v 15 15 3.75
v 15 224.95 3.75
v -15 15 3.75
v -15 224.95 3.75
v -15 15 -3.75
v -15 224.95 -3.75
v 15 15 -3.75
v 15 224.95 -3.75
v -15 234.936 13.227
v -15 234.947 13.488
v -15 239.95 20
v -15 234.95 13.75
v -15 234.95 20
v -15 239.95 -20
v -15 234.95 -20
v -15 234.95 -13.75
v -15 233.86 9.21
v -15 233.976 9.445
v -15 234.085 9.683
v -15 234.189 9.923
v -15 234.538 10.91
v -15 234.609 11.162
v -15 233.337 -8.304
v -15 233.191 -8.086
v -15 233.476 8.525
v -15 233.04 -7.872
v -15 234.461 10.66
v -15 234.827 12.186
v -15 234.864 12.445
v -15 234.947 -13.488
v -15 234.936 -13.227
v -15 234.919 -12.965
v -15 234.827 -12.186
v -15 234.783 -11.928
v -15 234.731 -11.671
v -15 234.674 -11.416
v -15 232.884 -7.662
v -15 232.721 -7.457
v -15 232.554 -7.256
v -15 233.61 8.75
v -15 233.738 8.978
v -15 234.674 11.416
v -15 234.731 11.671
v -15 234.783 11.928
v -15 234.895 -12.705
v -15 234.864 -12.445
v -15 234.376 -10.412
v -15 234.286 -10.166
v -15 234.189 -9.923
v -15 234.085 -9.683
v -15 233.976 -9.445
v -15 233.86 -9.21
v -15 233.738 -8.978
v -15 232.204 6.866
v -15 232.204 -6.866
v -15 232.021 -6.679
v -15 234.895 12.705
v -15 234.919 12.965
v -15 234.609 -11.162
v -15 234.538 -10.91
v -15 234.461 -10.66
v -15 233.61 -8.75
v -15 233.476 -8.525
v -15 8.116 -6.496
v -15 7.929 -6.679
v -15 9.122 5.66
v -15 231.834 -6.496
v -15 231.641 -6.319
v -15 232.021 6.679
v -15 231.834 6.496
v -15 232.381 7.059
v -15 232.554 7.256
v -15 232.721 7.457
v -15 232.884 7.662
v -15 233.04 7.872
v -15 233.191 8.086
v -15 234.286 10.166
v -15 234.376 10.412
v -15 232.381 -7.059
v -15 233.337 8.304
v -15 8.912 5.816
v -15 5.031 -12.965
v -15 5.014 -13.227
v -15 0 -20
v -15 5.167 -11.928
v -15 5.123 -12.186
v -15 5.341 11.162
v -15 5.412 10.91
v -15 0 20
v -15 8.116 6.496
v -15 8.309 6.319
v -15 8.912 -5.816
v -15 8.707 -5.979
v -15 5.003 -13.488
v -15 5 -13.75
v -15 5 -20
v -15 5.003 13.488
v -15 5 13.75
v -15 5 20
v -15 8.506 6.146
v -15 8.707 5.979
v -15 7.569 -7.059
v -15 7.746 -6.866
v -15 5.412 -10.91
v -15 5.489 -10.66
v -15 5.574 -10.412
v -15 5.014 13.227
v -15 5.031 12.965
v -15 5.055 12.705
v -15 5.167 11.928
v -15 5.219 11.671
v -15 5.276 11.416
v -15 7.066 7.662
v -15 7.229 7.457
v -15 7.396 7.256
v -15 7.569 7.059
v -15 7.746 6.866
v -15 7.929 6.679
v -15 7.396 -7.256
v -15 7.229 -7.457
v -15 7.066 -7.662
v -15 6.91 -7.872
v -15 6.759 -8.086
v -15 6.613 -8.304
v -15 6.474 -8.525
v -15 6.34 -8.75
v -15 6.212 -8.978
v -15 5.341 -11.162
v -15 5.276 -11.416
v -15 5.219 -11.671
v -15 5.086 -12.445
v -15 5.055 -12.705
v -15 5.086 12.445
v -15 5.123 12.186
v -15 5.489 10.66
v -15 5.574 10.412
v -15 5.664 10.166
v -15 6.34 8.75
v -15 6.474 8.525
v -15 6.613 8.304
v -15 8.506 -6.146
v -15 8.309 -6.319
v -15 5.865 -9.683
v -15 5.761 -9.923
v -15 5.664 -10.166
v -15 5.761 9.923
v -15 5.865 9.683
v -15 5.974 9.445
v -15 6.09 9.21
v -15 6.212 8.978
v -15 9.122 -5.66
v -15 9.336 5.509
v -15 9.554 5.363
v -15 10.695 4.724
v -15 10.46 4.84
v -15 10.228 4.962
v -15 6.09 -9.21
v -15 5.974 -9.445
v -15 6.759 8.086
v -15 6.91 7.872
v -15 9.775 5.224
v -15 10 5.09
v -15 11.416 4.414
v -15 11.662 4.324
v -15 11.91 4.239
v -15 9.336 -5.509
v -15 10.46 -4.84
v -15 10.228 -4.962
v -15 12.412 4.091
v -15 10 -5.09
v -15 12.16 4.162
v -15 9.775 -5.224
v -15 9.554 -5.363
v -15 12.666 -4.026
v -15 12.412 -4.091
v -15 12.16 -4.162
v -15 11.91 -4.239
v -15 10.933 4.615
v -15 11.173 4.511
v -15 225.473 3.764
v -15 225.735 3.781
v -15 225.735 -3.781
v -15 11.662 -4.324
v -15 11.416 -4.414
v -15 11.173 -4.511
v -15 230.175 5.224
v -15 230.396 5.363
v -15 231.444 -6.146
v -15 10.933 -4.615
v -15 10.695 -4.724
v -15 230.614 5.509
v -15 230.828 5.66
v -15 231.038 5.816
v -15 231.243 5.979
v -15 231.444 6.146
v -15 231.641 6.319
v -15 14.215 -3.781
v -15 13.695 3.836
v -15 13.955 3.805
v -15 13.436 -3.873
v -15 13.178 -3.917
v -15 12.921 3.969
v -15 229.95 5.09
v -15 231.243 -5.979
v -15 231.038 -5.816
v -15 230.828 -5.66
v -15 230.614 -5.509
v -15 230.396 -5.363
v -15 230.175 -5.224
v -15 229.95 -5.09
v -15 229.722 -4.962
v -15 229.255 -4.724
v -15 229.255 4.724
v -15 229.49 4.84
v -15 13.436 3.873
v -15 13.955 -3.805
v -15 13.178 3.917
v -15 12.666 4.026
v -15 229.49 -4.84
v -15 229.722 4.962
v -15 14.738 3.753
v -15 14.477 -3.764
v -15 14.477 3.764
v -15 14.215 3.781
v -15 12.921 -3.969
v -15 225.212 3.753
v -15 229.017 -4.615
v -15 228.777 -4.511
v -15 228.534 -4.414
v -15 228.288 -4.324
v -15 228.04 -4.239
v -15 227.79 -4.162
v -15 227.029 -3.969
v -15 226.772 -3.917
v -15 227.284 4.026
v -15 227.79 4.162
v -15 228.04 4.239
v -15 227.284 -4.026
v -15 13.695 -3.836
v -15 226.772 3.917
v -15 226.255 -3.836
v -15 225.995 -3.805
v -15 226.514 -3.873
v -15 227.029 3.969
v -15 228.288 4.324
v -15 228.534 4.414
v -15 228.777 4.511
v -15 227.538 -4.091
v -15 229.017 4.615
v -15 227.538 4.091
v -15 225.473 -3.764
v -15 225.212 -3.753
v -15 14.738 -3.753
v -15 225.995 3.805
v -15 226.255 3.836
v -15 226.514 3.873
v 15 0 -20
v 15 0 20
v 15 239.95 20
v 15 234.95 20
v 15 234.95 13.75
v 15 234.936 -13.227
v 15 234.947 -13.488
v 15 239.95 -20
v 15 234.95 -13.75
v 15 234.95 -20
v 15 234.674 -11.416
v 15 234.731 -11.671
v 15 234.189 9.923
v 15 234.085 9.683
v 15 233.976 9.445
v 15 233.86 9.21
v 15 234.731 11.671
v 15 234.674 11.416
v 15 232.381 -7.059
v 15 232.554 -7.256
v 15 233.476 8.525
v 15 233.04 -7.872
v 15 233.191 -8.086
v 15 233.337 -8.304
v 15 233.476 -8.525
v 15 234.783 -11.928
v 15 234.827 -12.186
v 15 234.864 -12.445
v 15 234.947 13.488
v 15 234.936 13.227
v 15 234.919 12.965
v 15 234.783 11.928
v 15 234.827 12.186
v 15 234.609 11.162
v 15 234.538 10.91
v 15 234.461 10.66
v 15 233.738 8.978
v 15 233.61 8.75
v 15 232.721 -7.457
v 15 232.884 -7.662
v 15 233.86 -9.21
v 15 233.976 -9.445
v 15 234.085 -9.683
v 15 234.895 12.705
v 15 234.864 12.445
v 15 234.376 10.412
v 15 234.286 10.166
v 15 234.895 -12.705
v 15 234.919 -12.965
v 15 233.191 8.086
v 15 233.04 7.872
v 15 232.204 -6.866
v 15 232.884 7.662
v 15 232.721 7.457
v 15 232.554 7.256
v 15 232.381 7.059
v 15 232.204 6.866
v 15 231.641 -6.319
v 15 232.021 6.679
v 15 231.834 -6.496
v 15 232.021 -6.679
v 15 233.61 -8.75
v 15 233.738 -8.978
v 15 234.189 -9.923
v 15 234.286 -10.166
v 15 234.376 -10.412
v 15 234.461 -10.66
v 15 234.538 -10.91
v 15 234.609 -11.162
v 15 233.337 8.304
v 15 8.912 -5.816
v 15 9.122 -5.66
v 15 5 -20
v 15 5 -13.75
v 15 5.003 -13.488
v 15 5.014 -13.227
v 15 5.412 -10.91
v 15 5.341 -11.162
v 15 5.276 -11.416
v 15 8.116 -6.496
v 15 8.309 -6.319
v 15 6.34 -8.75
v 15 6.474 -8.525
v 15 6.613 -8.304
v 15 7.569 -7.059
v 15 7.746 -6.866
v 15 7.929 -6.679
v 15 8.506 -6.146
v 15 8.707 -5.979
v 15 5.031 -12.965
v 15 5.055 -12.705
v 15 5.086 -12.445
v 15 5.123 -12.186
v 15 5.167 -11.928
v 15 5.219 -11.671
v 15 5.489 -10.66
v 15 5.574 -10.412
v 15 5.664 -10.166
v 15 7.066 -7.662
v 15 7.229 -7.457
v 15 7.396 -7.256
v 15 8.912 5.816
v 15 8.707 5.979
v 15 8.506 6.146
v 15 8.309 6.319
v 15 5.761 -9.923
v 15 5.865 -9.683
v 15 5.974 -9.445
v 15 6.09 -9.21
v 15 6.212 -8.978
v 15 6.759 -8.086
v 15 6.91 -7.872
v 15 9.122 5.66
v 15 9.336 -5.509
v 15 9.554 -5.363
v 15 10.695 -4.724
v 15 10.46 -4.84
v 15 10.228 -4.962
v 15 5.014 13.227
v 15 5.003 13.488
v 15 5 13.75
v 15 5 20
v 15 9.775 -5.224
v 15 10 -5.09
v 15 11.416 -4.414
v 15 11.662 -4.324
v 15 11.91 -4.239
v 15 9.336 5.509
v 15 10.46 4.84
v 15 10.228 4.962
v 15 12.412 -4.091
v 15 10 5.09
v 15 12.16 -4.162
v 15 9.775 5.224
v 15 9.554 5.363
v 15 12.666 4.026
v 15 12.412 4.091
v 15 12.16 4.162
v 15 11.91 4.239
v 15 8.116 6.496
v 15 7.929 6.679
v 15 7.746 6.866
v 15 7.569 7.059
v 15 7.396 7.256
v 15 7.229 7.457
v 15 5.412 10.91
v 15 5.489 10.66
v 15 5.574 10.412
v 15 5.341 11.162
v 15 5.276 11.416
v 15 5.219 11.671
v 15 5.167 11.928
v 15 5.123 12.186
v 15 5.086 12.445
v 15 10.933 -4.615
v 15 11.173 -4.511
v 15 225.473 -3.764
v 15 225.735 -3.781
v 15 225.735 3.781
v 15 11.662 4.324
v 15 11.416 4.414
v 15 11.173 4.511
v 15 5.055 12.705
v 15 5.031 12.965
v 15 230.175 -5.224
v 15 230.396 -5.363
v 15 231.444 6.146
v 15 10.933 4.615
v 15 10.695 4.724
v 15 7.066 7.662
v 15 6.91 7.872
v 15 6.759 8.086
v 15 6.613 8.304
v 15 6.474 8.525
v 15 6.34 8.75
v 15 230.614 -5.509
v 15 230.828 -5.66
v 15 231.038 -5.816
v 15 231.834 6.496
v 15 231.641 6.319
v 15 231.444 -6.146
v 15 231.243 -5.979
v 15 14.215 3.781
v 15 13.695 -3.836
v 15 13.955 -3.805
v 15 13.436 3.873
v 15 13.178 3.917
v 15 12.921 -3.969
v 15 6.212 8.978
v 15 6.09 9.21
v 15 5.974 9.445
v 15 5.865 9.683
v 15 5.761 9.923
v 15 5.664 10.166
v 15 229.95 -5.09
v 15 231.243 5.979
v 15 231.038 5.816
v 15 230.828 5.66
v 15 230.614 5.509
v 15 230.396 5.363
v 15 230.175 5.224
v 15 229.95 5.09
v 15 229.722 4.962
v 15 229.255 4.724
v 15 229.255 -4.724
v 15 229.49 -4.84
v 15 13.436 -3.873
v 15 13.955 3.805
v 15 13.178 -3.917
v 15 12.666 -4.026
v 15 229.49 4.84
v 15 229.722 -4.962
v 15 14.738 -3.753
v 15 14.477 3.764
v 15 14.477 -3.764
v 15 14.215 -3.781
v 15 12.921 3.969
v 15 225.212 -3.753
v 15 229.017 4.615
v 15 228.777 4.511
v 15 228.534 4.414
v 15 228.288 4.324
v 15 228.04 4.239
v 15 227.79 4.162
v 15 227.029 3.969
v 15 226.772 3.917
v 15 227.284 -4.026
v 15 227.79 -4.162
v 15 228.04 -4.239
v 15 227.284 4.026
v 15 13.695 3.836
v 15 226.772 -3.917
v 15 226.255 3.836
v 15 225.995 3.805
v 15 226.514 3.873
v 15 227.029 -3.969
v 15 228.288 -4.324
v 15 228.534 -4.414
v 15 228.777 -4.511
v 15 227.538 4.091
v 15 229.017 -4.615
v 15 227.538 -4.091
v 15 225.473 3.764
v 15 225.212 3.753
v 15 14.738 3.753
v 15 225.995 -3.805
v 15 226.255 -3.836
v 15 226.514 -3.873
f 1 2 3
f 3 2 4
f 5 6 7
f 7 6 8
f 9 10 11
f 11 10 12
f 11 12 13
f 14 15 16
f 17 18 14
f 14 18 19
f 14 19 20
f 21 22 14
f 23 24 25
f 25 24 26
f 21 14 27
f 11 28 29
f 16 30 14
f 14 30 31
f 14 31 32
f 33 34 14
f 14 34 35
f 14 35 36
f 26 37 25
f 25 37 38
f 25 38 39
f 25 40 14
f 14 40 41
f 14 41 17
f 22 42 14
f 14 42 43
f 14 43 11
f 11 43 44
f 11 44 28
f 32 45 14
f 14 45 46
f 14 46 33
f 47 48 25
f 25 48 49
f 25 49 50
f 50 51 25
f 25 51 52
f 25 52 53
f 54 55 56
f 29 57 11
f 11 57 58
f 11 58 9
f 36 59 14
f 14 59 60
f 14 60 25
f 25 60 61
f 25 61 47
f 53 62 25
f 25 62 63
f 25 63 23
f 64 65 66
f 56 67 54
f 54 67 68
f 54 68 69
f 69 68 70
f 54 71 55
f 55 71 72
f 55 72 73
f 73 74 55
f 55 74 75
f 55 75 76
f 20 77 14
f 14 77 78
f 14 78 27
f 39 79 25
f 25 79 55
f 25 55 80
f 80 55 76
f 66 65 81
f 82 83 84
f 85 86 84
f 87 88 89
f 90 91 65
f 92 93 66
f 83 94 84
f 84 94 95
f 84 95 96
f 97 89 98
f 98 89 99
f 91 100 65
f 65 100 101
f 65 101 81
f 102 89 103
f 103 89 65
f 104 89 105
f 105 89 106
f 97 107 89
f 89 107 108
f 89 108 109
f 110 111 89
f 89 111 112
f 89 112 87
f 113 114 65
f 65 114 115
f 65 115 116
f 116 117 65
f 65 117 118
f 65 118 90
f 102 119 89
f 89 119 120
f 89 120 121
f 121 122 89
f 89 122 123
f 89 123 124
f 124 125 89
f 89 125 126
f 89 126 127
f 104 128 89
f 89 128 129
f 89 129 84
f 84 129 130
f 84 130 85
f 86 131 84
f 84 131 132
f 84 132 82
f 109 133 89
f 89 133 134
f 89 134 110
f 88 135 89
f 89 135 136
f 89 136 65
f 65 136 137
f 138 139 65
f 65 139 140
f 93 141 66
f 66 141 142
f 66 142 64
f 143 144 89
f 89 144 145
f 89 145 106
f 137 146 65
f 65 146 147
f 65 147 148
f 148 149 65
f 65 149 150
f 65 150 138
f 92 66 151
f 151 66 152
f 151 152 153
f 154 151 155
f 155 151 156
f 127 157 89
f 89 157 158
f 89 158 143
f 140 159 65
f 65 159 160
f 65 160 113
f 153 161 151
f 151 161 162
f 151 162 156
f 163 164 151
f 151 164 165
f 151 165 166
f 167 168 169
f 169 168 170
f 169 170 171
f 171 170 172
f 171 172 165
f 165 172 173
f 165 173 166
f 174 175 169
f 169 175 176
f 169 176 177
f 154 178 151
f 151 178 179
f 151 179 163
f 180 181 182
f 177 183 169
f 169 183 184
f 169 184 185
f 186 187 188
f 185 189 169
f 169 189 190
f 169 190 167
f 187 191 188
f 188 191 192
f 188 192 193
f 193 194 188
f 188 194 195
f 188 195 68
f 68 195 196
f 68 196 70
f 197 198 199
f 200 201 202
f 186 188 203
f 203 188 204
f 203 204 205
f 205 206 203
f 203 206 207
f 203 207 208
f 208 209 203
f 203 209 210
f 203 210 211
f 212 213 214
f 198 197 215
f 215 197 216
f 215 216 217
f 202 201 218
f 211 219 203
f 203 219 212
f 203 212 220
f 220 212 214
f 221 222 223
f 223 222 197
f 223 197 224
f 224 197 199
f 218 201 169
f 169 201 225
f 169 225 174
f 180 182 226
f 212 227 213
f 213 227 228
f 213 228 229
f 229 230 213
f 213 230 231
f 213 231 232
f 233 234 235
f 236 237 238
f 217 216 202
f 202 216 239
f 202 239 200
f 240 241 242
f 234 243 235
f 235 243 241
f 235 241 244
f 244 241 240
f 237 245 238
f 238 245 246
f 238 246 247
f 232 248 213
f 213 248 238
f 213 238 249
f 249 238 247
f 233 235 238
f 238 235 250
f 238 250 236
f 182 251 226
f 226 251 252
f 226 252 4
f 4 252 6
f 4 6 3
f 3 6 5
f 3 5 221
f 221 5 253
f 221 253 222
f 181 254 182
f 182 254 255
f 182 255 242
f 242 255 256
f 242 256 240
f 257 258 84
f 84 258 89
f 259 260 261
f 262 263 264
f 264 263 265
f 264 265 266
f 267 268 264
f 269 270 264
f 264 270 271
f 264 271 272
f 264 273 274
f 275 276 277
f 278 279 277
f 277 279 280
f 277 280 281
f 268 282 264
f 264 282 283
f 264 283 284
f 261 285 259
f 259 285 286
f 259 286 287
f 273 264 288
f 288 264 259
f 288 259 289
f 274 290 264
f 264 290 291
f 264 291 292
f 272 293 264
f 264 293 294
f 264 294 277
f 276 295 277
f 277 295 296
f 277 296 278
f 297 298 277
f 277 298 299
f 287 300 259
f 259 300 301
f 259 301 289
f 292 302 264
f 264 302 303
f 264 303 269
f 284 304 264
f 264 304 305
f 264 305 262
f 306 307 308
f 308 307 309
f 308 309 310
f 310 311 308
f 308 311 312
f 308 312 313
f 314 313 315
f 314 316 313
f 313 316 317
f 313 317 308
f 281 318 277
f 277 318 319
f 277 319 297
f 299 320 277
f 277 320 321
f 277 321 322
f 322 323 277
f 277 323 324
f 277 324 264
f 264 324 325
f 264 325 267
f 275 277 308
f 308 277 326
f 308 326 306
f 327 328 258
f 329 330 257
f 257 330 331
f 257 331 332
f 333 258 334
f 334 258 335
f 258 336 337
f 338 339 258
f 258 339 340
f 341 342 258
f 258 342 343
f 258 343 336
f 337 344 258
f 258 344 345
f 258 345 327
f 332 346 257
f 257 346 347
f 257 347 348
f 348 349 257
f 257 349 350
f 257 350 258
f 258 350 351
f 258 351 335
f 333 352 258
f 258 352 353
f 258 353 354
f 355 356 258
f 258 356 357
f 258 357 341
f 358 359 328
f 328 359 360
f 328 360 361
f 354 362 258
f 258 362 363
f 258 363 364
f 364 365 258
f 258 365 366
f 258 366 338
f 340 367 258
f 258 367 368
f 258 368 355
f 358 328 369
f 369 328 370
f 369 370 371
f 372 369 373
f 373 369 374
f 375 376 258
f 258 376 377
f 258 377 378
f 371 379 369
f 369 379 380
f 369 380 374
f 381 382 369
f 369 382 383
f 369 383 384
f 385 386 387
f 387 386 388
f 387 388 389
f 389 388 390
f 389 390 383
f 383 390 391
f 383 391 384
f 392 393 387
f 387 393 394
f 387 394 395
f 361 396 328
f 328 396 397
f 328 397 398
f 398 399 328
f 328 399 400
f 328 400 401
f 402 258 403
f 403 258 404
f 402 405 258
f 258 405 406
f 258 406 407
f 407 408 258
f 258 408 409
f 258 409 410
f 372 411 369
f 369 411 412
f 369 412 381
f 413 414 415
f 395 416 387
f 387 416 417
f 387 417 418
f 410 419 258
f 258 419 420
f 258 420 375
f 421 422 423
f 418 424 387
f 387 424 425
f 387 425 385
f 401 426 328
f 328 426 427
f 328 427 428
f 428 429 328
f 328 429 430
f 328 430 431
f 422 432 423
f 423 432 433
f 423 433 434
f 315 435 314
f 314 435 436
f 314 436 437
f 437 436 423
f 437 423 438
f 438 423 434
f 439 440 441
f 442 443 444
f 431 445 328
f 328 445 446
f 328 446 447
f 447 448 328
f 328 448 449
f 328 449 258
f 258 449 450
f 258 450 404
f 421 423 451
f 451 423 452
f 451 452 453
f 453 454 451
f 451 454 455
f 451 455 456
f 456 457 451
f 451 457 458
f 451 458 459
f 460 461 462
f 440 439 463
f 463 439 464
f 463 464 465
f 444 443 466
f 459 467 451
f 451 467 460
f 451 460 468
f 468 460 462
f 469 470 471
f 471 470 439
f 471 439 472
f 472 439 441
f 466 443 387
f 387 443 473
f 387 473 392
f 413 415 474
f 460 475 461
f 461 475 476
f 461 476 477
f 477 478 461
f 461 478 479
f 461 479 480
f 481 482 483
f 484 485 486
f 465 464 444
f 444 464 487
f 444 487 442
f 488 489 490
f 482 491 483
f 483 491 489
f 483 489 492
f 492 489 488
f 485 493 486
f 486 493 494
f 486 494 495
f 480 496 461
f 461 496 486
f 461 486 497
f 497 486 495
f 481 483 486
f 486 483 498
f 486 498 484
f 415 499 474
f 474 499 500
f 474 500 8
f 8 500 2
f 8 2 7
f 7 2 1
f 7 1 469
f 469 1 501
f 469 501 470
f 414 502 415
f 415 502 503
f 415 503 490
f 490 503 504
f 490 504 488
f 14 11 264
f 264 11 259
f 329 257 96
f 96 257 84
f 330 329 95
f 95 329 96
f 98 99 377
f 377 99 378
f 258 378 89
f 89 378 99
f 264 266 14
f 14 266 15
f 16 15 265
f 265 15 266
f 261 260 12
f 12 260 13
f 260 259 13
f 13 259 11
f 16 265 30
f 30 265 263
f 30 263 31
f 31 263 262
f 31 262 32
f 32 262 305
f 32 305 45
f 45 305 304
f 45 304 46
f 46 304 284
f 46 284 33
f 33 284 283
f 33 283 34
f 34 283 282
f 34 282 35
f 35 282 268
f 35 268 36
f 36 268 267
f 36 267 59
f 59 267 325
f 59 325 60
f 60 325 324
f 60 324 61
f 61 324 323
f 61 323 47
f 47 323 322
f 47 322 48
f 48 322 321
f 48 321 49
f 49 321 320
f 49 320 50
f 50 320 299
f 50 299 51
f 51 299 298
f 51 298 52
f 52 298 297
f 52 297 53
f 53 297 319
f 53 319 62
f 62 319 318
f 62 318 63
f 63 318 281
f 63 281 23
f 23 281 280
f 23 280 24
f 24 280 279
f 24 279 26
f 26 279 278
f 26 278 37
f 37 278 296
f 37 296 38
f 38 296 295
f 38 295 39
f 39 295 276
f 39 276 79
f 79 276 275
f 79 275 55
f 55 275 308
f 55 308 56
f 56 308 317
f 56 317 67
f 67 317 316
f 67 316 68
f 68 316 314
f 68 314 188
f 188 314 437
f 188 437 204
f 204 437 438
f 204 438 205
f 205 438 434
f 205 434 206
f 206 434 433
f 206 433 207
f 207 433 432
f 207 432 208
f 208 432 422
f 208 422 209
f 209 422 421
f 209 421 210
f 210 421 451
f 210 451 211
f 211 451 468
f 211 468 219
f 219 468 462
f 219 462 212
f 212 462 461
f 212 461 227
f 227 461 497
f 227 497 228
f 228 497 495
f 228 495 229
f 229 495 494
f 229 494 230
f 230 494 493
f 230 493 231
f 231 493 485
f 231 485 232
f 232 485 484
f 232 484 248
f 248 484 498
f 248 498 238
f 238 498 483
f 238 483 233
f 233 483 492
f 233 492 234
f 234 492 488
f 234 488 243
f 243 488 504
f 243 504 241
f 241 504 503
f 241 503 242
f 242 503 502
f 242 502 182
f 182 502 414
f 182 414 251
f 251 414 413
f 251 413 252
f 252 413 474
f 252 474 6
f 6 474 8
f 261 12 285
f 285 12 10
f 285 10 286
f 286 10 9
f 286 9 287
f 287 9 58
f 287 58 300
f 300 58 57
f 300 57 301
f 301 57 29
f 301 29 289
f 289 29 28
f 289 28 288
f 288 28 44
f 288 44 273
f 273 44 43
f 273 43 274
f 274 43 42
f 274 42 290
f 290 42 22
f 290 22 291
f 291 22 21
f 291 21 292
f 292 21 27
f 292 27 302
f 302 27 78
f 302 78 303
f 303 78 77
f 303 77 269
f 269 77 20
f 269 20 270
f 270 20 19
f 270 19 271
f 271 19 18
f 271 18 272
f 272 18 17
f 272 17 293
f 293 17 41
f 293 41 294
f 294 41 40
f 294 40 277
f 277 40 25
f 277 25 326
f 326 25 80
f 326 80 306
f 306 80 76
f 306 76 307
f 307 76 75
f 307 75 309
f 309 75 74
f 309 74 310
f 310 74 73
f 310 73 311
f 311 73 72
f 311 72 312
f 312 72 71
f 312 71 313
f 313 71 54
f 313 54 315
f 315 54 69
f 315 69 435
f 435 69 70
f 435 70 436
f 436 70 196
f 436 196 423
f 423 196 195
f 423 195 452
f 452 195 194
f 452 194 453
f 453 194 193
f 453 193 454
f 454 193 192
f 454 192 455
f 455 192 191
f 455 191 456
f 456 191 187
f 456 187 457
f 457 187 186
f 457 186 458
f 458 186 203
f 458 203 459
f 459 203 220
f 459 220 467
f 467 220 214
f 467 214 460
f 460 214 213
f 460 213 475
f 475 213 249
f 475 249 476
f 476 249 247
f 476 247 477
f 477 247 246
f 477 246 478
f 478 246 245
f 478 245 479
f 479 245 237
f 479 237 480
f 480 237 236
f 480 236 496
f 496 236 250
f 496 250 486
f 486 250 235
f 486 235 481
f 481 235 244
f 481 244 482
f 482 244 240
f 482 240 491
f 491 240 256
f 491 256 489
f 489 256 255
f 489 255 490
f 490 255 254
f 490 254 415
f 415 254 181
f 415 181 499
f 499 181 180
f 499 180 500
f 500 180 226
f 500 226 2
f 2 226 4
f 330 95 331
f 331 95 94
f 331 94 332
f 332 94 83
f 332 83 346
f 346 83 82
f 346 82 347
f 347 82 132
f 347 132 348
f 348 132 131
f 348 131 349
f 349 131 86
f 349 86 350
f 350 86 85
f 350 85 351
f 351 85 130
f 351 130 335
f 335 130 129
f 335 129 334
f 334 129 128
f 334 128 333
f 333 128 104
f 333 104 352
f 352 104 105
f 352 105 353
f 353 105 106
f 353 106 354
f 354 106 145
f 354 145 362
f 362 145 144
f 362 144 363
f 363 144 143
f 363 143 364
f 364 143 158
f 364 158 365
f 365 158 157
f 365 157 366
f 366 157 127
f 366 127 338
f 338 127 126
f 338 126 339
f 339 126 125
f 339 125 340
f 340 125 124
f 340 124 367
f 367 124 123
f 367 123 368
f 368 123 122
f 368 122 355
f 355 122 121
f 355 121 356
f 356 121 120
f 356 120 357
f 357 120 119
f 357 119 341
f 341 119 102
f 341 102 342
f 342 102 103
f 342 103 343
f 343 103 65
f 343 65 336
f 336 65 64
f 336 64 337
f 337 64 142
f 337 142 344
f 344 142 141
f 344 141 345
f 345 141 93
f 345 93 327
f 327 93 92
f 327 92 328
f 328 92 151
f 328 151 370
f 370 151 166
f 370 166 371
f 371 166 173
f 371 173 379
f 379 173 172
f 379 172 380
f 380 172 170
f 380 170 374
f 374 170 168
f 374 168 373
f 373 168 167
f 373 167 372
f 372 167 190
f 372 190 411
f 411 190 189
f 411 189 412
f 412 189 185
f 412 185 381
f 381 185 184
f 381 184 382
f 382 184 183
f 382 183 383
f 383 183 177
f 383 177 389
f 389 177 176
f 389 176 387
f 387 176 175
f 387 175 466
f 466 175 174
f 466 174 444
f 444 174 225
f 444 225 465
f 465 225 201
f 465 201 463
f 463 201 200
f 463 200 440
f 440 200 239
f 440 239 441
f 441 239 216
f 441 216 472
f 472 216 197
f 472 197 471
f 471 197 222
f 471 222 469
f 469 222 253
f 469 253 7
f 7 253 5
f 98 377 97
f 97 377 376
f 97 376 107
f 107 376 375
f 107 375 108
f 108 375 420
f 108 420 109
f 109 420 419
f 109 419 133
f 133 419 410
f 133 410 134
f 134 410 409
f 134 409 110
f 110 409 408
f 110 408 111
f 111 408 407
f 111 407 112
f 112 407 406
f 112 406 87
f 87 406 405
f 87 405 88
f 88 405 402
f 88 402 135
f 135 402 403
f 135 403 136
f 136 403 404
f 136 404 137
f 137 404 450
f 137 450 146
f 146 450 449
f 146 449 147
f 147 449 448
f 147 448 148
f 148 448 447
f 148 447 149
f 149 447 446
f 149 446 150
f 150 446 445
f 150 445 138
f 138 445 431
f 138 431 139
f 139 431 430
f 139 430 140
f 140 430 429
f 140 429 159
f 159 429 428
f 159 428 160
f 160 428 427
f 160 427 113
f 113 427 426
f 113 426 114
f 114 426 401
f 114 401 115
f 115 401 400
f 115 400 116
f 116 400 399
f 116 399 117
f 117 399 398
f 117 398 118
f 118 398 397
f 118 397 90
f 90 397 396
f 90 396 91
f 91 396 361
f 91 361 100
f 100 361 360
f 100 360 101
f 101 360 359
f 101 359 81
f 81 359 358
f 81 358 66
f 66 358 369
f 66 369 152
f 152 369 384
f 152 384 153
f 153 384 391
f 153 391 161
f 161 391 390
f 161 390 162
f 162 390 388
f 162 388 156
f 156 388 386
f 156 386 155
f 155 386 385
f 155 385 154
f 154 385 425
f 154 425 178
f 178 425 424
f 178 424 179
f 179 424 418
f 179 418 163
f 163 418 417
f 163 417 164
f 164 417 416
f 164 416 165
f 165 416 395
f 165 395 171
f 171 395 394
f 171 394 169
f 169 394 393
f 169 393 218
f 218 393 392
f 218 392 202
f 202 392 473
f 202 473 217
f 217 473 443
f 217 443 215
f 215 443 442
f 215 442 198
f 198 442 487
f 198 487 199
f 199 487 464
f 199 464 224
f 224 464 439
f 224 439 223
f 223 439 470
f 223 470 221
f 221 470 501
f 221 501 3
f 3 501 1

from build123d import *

# Parameters (mm, degrees)
SKETCH1_W           = 30
SKETCH1_H           = 239.95
BOSS_EXTRUDE1_DEPTH = 3.75
SKETCH2_W           = 30
SKETCH2_H           = 5
BOSS_EXTRUDE2_DEPTH = 20
SKETCH3_W           = 30
SKETCH3_H           = 5
BOSS_EXTRUDE3_DEPTH = 20
FILLET1_R           = 10
FILLET2_R           = 10


with BuildPart() as part:
    # Sketch1 → Boss-Extrude1 (new body, symmetric)
    with BuildSketch(Plane.XY):
        with Locations((0, 119.975)):
            Rectangle(SKETCH1_W, SKETCH1_H)
    extrude(amount=BOSS_EXTRUDE1_DEPTH, both=True)

    # Sketch2 → Boss-Extrude2 (add, symmetric)
    with BuildSketch(Plane.XY):
        with Locations((0, 2.5)):
            Rectangle(SKETCH2_W, SKETCH2_H)
    extrude(amount=BOSS_EXTRUDE2_DEPTH, both=True)

    # Sketch3 → Boss-Extrude3 (add, symmetric)
    with BuildSketch(Plane.XY):
        with Locations((0, 237.45)):
            Rectangle(SKETCH3_W, SKETCH3_H)
    extrude(amount=BOSS_EXTRUDE3_DEPTH, both=True)

    # Fillet1
    fillet1_edges = [part.edges().sort_by_distance(p)[0] for p in [
        (0, 234.95, 3.75),
        (0, 234.95, -3.75),
    ]]
    fillet(fillet1_edges, radius=FILLET1_R)

    # Fillet2
    fillet2_edges = [part.edges().sort_by_distance(p)[0] for p in [
        (0, 5, -3.75),
        (0, 5, 3.75),
    ]]
    fillet(fillet2_edges, radius=FILLET2_R)


solid = part.part
